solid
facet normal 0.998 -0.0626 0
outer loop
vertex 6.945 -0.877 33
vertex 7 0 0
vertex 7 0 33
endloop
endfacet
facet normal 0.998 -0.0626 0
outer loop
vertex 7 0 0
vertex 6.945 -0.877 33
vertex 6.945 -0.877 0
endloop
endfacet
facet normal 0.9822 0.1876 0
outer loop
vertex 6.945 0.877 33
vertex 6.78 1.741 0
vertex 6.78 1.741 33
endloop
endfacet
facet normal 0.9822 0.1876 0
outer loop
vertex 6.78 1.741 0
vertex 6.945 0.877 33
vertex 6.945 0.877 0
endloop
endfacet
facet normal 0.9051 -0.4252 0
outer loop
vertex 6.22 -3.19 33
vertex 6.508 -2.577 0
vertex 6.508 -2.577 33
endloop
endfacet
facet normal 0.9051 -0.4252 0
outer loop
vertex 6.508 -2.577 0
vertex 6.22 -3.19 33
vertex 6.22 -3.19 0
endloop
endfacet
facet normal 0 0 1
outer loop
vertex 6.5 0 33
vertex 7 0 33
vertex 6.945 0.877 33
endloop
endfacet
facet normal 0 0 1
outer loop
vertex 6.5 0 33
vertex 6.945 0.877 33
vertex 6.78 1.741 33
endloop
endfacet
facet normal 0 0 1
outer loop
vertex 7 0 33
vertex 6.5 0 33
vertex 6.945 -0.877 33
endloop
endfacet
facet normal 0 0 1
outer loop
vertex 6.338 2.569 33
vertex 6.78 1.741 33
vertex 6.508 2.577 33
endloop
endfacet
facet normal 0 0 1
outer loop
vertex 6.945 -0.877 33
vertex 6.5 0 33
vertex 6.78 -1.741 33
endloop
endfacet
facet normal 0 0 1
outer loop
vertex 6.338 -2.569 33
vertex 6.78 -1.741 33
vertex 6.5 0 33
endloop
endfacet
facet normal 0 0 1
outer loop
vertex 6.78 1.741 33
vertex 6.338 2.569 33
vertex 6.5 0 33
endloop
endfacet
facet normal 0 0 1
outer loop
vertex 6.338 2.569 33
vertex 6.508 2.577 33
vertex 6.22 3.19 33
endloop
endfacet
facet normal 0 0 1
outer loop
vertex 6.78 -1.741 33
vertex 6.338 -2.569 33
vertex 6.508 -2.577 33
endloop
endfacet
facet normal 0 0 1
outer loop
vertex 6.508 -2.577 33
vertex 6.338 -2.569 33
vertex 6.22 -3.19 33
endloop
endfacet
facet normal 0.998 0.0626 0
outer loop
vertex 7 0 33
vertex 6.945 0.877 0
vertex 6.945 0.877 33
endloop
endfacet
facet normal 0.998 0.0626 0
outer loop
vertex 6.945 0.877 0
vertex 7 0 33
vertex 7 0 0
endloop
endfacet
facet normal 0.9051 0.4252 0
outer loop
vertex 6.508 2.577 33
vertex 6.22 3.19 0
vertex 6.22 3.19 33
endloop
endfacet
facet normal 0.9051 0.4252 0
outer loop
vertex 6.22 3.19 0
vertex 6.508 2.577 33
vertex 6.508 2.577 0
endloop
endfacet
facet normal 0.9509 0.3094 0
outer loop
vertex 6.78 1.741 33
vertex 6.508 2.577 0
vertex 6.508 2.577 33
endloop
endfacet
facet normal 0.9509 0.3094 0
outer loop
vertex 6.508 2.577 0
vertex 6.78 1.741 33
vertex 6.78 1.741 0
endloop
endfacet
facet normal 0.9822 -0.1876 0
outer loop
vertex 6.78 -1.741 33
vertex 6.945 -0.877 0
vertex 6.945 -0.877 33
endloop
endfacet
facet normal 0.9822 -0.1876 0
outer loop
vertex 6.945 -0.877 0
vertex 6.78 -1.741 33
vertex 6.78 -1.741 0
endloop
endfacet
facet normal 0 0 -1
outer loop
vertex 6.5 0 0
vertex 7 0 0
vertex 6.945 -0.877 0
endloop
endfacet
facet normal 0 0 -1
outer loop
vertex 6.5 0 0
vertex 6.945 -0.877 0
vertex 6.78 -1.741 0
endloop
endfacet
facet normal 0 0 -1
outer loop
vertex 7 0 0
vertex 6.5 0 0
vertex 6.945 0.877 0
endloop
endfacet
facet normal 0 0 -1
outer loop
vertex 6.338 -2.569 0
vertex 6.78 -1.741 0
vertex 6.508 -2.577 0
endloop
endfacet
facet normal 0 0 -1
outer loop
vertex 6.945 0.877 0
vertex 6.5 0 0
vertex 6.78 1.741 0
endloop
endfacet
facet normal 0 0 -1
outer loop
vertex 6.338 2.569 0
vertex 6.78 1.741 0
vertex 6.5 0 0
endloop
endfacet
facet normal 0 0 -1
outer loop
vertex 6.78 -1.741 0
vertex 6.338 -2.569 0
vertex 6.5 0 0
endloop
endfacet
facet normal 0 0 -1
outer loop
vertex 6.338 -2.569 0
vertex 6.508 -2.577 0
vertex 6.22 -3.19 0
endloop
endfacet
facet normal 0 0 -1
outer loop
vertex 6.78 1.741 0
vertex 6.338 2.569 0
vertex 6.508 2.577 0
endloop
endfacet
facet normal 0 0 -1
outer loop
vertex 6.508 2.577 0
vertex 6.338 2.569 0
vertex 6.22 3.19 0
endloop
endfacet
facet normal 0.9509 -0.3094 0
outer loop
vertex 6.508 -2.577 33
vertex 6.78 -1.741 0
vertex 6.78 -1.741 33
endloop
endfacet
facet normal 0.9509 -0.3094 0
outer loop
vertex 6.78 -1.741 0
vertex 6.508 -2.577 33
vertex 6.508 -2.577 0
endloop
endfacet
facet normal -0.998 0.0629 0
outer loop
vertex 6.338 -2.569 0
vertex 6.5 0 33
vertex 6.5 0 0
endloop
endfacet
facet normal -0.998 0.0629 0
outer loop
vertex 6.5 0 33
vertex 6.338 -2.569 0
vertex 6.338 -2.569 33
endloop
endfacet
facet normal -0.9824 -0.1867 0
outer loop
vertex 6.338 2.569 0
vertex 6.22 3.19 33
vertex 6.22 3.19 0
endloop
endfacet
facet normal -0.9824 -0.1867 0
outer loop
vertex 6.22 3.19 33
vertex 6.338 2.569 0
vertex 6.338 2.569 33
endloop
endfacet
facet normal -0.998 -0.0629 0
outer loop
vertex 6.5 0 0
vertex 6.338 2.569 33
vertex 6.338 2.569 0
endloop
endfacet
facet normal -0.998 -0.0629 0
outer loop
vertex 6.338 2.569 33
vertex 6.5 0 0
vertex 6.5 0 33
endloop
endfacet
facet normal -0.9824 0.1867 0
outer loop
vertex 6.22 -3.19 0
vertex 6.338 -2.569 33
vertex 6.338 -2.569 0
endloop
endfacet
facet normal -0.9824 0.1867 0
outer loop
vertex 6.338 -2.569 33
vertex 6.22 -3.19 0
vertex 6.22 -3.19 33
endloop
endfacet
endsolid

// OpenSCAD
$fn = 50;


difference() {
	union() {
		cylinder(h = 33, r = 7.0000000000);
		translate(v = [-17.0000000000, 0, 0]) {
			cylinder(h = 33, r = 7.0000000000);
		}
	}
	union() {
		cylinder(h = 33, r = 3.2500000000);
		cylinder(h = 33, r = 1.8000000000);
		cylinder(h = 33, r = 1.8000000000);
		cylinder(h = 33, r = 1.8000000000);
		translate(v = [-21.5000000000, 0, 0]) {
			hull() {
				translate(v = [-3.7500000000, 0.0000000000, 0]) {
					cylinder(h = 33, r = 10.5000000000);
				}
				translate(v = [3.7500000000, 0.0000000000, 0]) {
					cylinder(h = 33, r = 10.5000000000);
				}
				translate(v = [-3.7500000000, -0.0000000000, 0]) {
					cylinder(h = 33, r = 10.5000000000);
				}
				translate(v = [3.7500000000, -0.0000000000, 0]) {
					cylinder(h = 33, r = 10.5000000000);
				}
			}
		}
		translate(v = [-14.0000000000, 0, 0.0000000000]) {
			cylinder(h = 33, r = 20.5000000000);
		}
	}
}
